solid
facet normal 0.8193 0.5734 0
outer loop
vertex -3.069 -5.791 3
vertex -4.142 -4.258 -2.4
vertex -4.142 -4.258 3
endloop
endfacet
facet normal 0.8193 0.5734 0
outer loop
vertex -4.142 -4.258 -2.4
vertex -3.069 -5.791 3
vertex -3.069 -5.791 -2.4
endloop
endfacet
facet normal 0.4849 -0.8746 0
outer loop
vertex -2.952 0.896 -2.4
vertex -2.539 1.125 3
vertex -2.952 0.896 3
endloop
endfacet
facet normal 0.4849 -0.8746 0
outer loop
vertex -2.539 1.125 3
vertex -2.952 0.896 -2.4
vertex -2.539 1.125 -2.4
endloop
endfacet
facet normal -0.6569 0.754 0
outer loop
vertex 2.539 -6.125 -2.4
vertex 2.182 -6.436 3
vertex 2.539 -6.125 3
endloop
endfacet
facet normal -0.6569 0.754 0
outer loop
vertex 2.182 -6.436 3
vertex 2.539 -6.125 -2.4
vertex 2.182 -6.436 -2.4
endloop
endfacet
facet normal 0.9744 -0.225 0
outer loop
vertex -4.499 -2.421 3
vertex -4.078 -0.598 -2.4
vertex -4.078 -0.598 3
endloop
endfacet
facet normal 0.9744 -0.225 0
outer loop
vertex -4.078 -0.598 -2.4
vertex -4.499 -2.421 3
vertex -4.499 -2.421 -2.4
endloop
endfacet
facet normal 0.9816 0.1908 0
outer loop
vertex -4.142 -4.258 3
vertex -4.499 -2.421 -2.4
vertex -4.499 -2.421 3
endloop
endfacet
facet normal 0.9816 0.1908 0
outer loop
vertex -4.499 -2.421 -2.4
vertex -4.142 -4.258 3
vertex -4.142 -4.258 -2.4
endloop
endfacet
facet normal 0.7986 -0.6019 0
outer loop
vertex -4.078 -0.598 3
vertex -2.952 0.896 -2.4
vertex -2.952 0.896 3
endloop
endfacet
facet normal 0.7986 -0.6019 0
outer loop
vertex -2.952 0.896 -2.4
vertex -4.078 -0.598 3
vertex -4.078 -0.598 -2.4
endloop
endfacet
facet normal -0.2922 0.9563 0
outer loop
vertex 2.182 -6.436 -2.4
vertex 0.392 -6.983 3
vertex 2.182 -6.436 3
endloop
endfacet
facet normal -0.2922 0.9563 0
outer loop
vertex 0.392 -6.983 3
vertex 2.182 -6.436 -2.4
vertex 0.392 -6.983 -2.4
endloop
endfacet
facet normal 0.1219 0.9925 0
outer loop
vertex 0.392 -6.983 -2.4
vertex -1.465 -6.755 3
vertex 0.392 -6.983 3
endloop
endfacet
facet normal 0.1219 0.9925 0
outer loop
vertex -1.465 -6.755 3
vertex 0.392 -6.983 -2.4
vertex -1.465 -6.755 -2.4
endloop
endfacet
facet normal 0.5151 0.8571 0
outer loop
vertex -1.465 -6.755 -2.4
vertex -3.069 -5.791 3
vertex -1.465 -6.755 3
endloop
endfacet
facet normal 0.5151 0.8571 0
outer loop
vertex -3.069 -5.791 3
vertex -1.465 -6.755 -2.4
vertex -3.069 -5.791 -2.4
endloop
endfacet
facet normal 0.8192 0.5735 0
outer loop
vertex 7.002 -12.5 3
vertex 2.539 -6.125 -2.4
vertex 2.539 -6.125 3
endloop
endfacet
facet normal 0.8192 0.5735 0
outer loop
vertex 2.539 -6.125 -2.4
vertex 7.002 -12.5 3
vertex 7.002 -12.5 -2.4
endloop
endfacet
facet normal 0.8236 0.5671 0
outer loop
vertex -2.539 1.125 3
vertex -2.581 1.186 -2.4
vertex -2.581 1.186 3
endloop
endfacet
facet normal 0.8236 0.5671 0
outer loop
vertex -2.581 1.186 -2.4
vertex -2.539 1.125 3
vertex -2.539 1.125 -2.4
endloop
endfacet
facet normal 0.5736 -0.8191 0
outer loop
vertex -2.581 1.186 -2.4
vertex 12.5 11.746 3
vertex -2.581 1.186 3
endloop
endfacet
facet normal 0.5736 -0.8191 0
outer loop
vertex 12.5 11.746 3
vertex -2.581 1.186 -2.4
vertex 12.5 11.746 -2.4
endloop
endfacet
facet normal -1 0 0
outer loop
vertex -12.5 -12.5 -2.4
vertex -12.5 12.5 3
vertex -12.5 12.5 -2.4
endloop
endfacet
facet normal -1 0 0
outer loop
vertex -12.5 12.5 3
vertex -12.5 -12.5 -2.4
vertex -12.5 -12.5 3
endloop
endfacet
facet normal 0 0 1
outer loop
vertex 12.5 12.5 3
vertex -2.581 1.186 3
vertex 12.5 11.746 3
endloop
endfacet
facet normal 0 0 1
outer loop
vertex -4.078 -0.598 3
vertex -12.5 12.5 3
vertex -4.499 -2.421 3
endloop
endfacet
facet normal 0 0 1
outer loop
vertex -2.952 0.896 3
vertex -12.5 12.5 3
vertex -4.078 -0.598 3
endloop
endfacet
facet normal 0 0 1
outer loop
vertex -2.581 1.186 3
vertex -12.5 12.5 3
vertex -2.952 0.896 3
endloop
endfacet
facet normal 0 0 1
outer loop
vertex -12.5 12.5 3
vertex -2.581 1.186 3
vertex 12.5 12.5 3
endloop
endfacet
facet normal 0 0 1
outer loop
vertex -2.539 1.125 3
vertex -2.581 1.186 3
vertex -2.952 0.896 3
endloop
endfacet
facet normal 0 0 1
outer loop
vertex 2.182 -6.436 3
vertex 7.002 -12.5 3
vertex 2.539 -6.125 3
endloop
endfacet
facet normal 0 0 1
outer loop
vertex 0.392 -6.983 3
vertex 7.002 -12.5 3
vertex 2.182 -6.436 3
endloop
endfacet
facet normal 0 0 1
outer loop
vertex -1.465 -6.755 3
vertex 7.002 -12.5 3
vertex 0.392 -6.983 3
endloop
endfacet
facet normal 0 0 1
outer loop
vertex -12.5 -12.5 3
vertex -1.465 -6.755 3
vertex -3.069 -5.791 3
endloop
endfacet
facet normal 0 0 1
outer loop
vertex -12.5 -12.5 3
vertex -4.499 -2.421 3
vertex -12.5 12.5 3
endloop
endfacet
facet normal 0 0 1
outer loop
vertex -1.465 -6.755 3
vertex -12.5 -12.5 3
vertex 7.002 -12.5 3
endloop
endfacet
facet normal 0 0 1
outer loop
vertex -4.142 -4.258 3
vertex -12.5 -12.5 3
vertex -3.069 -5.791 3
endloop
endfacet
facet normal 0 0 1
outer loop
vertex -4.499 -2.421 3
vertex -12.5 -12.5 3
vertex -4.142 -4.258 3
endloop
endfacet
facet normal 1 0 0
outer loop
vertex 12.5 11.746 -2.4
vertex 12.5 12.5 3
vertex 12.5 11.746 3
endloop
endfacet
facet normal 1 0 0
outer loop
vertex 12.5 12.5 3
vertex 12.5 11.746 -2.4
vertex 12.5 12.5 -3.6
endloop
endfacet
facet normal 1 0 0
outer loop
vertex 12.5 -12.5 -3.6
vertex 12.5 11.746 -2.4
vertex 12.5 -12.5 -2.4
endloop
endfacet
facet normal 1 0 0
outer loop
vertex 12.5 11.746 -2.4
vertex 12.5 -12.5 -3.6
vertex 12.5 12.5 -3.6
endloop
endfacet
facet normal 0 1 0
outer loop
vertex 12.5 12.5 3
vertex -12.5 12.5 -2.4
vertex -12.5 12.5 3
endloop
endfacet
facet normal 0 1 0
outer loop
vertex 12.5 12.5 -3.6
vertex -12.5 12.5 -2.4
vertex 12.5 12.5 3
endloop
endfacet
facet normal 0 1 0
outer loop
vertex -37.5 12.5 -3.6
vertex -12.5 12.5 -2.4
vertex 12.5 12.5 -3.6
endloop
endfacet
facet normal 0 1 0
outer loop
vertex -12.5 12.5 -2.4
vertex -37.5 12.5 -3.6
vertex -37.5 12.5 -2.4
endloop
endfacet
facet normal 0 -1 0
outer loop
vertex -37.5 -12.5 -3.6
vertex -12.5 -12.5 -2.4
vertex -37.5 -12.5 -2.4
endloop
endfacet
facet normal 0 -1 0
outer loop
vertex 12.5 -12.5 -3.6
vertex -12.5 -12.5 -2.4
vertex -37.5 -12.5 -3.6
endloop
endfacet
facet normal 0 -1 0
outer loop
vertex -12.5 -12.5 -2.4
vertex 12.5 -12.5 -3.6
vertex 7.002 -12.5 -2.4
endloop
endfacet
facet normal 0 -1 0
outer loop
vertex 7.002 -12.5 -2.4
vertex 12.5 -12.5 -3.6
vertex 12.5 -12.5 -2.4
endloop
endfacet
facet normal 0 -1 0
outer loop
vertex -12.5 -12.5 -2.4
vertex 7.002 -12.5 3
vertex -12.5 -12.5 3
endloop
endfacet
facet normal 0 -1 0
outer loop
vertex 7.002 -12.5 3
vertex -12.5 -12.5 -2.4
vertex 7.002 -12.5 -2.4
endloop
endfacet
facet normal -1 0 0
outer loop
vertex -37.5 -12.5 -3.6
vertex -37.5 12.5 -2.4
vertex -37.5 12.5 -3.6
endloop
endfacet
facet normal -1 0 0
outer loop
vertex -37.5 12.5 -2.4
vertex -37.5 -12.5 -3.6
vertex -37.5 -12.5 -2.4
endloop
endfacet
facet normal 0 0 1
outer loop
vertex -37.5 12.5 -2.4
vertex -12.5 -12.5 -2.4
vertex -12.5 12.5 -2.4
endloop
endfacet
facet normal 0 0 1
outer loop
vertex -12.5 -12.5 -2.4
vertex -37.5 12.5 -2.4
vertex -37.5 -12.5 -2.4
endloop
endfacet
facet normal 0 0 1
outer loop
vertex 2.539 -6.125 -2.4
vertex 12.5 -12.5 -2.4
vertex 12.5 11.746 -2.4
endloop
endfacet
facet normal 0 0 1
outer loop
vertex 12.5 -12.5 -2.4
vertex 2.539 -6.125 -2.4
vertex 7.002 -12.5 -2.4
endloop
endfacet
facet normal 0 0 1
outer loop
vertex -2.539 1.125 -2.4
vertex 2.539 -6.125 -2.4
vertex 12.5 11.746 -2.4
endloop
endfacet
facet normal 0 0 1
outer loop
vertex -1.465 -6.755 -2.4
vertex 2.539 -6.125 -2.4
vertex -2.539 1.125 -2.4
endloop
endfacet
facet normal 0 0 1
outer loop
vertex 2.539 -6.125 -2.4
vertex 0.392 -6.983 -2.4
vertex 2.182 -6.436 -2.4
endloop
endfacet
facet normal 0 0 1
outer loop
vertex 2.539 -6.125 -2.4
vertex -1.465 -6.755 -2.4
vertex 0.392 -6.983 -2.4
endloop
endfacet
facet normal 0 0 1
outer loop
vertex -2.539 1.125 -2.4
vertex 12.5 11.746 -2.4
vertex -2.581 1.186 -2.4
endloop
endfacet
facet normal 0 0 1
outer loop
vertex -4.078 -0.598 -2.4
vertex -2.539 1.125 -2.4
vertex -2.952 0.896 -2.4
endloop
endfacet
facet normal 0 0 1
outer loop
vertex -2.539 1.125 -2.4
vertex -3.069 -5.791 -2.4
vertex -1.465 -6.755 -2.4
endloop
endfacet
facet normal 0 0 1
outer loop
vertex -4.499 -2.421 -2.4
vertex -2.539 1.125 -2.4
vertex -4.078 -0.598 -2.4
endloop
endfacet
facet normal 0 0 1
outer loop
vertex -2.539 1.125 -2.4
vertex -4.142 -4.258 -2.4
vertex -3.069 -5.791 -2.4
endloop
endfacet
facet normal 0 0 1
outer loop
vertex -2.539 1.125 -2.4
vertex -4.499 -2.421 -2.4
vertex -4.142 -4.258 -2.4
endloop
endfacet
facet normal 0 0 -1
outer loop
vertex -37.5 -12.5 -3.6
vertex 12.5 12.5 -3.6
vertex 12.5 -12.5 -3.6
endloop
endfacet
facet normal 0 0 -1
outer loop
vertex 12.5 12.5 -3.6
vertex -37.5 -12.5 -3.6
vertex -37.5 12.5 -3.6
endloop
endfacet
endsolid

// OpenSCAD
//für minkowski-summe zum abrunden des fertigen körpres
hm = 0; //höhe zylinder
rm = 0; //radius zylinder

//basisvergrößerung
//g = 40;
g = 50;
h = 25;
i = 1.2;

//Basiskörper (Quader)
a = 25-2*rm;
b = 25-2*rm;
c = 6-2*hm;


//Quader zum Ausschneiden aus dem Basiskörper
d = 25+2*rm;
e = 20+2*rm;
f = c + 0.1;// sicherstellen, dass der Ausschnitt wirklich sichtbar größer ist
//der Quader zum Ausschneiden kriegt an dem einen Ende einen Zylinder, in den die Stange des Rollos einhakt.
hc = c + 0.1; // sicherstellen, dass der Ausschnitt wirklich sichtbar größer ist
dc = 9+2*rm; //durchmesser stab rollo = 8



$fn=15;
minkowski(){
    union(){
        translate([-g/2+a/2,0,-c/2]) cube([g,h,i],center = true);
        difference(){
            cube([a,b,c], center = true);
            //den cube für den schlitz so verschieben, dass der durch den Zylinder ein abgerundetes Ende erhält,
            //dann mit dem zylinder vereinigen
            //und das ganze ding 35 grad rotieren um die z-achse
            translate([0,-b/2+e/2,0])rotate(a=35, v=[0,0,1])union(){
                cylinder(hc, dc/2,dc/2, center=true);
                translate([d/2,-e/2+dc/2,0])cube([d,e,f], center = true);
            }    
        }
    }
    cylinder(r=rm,h=hm);
}
